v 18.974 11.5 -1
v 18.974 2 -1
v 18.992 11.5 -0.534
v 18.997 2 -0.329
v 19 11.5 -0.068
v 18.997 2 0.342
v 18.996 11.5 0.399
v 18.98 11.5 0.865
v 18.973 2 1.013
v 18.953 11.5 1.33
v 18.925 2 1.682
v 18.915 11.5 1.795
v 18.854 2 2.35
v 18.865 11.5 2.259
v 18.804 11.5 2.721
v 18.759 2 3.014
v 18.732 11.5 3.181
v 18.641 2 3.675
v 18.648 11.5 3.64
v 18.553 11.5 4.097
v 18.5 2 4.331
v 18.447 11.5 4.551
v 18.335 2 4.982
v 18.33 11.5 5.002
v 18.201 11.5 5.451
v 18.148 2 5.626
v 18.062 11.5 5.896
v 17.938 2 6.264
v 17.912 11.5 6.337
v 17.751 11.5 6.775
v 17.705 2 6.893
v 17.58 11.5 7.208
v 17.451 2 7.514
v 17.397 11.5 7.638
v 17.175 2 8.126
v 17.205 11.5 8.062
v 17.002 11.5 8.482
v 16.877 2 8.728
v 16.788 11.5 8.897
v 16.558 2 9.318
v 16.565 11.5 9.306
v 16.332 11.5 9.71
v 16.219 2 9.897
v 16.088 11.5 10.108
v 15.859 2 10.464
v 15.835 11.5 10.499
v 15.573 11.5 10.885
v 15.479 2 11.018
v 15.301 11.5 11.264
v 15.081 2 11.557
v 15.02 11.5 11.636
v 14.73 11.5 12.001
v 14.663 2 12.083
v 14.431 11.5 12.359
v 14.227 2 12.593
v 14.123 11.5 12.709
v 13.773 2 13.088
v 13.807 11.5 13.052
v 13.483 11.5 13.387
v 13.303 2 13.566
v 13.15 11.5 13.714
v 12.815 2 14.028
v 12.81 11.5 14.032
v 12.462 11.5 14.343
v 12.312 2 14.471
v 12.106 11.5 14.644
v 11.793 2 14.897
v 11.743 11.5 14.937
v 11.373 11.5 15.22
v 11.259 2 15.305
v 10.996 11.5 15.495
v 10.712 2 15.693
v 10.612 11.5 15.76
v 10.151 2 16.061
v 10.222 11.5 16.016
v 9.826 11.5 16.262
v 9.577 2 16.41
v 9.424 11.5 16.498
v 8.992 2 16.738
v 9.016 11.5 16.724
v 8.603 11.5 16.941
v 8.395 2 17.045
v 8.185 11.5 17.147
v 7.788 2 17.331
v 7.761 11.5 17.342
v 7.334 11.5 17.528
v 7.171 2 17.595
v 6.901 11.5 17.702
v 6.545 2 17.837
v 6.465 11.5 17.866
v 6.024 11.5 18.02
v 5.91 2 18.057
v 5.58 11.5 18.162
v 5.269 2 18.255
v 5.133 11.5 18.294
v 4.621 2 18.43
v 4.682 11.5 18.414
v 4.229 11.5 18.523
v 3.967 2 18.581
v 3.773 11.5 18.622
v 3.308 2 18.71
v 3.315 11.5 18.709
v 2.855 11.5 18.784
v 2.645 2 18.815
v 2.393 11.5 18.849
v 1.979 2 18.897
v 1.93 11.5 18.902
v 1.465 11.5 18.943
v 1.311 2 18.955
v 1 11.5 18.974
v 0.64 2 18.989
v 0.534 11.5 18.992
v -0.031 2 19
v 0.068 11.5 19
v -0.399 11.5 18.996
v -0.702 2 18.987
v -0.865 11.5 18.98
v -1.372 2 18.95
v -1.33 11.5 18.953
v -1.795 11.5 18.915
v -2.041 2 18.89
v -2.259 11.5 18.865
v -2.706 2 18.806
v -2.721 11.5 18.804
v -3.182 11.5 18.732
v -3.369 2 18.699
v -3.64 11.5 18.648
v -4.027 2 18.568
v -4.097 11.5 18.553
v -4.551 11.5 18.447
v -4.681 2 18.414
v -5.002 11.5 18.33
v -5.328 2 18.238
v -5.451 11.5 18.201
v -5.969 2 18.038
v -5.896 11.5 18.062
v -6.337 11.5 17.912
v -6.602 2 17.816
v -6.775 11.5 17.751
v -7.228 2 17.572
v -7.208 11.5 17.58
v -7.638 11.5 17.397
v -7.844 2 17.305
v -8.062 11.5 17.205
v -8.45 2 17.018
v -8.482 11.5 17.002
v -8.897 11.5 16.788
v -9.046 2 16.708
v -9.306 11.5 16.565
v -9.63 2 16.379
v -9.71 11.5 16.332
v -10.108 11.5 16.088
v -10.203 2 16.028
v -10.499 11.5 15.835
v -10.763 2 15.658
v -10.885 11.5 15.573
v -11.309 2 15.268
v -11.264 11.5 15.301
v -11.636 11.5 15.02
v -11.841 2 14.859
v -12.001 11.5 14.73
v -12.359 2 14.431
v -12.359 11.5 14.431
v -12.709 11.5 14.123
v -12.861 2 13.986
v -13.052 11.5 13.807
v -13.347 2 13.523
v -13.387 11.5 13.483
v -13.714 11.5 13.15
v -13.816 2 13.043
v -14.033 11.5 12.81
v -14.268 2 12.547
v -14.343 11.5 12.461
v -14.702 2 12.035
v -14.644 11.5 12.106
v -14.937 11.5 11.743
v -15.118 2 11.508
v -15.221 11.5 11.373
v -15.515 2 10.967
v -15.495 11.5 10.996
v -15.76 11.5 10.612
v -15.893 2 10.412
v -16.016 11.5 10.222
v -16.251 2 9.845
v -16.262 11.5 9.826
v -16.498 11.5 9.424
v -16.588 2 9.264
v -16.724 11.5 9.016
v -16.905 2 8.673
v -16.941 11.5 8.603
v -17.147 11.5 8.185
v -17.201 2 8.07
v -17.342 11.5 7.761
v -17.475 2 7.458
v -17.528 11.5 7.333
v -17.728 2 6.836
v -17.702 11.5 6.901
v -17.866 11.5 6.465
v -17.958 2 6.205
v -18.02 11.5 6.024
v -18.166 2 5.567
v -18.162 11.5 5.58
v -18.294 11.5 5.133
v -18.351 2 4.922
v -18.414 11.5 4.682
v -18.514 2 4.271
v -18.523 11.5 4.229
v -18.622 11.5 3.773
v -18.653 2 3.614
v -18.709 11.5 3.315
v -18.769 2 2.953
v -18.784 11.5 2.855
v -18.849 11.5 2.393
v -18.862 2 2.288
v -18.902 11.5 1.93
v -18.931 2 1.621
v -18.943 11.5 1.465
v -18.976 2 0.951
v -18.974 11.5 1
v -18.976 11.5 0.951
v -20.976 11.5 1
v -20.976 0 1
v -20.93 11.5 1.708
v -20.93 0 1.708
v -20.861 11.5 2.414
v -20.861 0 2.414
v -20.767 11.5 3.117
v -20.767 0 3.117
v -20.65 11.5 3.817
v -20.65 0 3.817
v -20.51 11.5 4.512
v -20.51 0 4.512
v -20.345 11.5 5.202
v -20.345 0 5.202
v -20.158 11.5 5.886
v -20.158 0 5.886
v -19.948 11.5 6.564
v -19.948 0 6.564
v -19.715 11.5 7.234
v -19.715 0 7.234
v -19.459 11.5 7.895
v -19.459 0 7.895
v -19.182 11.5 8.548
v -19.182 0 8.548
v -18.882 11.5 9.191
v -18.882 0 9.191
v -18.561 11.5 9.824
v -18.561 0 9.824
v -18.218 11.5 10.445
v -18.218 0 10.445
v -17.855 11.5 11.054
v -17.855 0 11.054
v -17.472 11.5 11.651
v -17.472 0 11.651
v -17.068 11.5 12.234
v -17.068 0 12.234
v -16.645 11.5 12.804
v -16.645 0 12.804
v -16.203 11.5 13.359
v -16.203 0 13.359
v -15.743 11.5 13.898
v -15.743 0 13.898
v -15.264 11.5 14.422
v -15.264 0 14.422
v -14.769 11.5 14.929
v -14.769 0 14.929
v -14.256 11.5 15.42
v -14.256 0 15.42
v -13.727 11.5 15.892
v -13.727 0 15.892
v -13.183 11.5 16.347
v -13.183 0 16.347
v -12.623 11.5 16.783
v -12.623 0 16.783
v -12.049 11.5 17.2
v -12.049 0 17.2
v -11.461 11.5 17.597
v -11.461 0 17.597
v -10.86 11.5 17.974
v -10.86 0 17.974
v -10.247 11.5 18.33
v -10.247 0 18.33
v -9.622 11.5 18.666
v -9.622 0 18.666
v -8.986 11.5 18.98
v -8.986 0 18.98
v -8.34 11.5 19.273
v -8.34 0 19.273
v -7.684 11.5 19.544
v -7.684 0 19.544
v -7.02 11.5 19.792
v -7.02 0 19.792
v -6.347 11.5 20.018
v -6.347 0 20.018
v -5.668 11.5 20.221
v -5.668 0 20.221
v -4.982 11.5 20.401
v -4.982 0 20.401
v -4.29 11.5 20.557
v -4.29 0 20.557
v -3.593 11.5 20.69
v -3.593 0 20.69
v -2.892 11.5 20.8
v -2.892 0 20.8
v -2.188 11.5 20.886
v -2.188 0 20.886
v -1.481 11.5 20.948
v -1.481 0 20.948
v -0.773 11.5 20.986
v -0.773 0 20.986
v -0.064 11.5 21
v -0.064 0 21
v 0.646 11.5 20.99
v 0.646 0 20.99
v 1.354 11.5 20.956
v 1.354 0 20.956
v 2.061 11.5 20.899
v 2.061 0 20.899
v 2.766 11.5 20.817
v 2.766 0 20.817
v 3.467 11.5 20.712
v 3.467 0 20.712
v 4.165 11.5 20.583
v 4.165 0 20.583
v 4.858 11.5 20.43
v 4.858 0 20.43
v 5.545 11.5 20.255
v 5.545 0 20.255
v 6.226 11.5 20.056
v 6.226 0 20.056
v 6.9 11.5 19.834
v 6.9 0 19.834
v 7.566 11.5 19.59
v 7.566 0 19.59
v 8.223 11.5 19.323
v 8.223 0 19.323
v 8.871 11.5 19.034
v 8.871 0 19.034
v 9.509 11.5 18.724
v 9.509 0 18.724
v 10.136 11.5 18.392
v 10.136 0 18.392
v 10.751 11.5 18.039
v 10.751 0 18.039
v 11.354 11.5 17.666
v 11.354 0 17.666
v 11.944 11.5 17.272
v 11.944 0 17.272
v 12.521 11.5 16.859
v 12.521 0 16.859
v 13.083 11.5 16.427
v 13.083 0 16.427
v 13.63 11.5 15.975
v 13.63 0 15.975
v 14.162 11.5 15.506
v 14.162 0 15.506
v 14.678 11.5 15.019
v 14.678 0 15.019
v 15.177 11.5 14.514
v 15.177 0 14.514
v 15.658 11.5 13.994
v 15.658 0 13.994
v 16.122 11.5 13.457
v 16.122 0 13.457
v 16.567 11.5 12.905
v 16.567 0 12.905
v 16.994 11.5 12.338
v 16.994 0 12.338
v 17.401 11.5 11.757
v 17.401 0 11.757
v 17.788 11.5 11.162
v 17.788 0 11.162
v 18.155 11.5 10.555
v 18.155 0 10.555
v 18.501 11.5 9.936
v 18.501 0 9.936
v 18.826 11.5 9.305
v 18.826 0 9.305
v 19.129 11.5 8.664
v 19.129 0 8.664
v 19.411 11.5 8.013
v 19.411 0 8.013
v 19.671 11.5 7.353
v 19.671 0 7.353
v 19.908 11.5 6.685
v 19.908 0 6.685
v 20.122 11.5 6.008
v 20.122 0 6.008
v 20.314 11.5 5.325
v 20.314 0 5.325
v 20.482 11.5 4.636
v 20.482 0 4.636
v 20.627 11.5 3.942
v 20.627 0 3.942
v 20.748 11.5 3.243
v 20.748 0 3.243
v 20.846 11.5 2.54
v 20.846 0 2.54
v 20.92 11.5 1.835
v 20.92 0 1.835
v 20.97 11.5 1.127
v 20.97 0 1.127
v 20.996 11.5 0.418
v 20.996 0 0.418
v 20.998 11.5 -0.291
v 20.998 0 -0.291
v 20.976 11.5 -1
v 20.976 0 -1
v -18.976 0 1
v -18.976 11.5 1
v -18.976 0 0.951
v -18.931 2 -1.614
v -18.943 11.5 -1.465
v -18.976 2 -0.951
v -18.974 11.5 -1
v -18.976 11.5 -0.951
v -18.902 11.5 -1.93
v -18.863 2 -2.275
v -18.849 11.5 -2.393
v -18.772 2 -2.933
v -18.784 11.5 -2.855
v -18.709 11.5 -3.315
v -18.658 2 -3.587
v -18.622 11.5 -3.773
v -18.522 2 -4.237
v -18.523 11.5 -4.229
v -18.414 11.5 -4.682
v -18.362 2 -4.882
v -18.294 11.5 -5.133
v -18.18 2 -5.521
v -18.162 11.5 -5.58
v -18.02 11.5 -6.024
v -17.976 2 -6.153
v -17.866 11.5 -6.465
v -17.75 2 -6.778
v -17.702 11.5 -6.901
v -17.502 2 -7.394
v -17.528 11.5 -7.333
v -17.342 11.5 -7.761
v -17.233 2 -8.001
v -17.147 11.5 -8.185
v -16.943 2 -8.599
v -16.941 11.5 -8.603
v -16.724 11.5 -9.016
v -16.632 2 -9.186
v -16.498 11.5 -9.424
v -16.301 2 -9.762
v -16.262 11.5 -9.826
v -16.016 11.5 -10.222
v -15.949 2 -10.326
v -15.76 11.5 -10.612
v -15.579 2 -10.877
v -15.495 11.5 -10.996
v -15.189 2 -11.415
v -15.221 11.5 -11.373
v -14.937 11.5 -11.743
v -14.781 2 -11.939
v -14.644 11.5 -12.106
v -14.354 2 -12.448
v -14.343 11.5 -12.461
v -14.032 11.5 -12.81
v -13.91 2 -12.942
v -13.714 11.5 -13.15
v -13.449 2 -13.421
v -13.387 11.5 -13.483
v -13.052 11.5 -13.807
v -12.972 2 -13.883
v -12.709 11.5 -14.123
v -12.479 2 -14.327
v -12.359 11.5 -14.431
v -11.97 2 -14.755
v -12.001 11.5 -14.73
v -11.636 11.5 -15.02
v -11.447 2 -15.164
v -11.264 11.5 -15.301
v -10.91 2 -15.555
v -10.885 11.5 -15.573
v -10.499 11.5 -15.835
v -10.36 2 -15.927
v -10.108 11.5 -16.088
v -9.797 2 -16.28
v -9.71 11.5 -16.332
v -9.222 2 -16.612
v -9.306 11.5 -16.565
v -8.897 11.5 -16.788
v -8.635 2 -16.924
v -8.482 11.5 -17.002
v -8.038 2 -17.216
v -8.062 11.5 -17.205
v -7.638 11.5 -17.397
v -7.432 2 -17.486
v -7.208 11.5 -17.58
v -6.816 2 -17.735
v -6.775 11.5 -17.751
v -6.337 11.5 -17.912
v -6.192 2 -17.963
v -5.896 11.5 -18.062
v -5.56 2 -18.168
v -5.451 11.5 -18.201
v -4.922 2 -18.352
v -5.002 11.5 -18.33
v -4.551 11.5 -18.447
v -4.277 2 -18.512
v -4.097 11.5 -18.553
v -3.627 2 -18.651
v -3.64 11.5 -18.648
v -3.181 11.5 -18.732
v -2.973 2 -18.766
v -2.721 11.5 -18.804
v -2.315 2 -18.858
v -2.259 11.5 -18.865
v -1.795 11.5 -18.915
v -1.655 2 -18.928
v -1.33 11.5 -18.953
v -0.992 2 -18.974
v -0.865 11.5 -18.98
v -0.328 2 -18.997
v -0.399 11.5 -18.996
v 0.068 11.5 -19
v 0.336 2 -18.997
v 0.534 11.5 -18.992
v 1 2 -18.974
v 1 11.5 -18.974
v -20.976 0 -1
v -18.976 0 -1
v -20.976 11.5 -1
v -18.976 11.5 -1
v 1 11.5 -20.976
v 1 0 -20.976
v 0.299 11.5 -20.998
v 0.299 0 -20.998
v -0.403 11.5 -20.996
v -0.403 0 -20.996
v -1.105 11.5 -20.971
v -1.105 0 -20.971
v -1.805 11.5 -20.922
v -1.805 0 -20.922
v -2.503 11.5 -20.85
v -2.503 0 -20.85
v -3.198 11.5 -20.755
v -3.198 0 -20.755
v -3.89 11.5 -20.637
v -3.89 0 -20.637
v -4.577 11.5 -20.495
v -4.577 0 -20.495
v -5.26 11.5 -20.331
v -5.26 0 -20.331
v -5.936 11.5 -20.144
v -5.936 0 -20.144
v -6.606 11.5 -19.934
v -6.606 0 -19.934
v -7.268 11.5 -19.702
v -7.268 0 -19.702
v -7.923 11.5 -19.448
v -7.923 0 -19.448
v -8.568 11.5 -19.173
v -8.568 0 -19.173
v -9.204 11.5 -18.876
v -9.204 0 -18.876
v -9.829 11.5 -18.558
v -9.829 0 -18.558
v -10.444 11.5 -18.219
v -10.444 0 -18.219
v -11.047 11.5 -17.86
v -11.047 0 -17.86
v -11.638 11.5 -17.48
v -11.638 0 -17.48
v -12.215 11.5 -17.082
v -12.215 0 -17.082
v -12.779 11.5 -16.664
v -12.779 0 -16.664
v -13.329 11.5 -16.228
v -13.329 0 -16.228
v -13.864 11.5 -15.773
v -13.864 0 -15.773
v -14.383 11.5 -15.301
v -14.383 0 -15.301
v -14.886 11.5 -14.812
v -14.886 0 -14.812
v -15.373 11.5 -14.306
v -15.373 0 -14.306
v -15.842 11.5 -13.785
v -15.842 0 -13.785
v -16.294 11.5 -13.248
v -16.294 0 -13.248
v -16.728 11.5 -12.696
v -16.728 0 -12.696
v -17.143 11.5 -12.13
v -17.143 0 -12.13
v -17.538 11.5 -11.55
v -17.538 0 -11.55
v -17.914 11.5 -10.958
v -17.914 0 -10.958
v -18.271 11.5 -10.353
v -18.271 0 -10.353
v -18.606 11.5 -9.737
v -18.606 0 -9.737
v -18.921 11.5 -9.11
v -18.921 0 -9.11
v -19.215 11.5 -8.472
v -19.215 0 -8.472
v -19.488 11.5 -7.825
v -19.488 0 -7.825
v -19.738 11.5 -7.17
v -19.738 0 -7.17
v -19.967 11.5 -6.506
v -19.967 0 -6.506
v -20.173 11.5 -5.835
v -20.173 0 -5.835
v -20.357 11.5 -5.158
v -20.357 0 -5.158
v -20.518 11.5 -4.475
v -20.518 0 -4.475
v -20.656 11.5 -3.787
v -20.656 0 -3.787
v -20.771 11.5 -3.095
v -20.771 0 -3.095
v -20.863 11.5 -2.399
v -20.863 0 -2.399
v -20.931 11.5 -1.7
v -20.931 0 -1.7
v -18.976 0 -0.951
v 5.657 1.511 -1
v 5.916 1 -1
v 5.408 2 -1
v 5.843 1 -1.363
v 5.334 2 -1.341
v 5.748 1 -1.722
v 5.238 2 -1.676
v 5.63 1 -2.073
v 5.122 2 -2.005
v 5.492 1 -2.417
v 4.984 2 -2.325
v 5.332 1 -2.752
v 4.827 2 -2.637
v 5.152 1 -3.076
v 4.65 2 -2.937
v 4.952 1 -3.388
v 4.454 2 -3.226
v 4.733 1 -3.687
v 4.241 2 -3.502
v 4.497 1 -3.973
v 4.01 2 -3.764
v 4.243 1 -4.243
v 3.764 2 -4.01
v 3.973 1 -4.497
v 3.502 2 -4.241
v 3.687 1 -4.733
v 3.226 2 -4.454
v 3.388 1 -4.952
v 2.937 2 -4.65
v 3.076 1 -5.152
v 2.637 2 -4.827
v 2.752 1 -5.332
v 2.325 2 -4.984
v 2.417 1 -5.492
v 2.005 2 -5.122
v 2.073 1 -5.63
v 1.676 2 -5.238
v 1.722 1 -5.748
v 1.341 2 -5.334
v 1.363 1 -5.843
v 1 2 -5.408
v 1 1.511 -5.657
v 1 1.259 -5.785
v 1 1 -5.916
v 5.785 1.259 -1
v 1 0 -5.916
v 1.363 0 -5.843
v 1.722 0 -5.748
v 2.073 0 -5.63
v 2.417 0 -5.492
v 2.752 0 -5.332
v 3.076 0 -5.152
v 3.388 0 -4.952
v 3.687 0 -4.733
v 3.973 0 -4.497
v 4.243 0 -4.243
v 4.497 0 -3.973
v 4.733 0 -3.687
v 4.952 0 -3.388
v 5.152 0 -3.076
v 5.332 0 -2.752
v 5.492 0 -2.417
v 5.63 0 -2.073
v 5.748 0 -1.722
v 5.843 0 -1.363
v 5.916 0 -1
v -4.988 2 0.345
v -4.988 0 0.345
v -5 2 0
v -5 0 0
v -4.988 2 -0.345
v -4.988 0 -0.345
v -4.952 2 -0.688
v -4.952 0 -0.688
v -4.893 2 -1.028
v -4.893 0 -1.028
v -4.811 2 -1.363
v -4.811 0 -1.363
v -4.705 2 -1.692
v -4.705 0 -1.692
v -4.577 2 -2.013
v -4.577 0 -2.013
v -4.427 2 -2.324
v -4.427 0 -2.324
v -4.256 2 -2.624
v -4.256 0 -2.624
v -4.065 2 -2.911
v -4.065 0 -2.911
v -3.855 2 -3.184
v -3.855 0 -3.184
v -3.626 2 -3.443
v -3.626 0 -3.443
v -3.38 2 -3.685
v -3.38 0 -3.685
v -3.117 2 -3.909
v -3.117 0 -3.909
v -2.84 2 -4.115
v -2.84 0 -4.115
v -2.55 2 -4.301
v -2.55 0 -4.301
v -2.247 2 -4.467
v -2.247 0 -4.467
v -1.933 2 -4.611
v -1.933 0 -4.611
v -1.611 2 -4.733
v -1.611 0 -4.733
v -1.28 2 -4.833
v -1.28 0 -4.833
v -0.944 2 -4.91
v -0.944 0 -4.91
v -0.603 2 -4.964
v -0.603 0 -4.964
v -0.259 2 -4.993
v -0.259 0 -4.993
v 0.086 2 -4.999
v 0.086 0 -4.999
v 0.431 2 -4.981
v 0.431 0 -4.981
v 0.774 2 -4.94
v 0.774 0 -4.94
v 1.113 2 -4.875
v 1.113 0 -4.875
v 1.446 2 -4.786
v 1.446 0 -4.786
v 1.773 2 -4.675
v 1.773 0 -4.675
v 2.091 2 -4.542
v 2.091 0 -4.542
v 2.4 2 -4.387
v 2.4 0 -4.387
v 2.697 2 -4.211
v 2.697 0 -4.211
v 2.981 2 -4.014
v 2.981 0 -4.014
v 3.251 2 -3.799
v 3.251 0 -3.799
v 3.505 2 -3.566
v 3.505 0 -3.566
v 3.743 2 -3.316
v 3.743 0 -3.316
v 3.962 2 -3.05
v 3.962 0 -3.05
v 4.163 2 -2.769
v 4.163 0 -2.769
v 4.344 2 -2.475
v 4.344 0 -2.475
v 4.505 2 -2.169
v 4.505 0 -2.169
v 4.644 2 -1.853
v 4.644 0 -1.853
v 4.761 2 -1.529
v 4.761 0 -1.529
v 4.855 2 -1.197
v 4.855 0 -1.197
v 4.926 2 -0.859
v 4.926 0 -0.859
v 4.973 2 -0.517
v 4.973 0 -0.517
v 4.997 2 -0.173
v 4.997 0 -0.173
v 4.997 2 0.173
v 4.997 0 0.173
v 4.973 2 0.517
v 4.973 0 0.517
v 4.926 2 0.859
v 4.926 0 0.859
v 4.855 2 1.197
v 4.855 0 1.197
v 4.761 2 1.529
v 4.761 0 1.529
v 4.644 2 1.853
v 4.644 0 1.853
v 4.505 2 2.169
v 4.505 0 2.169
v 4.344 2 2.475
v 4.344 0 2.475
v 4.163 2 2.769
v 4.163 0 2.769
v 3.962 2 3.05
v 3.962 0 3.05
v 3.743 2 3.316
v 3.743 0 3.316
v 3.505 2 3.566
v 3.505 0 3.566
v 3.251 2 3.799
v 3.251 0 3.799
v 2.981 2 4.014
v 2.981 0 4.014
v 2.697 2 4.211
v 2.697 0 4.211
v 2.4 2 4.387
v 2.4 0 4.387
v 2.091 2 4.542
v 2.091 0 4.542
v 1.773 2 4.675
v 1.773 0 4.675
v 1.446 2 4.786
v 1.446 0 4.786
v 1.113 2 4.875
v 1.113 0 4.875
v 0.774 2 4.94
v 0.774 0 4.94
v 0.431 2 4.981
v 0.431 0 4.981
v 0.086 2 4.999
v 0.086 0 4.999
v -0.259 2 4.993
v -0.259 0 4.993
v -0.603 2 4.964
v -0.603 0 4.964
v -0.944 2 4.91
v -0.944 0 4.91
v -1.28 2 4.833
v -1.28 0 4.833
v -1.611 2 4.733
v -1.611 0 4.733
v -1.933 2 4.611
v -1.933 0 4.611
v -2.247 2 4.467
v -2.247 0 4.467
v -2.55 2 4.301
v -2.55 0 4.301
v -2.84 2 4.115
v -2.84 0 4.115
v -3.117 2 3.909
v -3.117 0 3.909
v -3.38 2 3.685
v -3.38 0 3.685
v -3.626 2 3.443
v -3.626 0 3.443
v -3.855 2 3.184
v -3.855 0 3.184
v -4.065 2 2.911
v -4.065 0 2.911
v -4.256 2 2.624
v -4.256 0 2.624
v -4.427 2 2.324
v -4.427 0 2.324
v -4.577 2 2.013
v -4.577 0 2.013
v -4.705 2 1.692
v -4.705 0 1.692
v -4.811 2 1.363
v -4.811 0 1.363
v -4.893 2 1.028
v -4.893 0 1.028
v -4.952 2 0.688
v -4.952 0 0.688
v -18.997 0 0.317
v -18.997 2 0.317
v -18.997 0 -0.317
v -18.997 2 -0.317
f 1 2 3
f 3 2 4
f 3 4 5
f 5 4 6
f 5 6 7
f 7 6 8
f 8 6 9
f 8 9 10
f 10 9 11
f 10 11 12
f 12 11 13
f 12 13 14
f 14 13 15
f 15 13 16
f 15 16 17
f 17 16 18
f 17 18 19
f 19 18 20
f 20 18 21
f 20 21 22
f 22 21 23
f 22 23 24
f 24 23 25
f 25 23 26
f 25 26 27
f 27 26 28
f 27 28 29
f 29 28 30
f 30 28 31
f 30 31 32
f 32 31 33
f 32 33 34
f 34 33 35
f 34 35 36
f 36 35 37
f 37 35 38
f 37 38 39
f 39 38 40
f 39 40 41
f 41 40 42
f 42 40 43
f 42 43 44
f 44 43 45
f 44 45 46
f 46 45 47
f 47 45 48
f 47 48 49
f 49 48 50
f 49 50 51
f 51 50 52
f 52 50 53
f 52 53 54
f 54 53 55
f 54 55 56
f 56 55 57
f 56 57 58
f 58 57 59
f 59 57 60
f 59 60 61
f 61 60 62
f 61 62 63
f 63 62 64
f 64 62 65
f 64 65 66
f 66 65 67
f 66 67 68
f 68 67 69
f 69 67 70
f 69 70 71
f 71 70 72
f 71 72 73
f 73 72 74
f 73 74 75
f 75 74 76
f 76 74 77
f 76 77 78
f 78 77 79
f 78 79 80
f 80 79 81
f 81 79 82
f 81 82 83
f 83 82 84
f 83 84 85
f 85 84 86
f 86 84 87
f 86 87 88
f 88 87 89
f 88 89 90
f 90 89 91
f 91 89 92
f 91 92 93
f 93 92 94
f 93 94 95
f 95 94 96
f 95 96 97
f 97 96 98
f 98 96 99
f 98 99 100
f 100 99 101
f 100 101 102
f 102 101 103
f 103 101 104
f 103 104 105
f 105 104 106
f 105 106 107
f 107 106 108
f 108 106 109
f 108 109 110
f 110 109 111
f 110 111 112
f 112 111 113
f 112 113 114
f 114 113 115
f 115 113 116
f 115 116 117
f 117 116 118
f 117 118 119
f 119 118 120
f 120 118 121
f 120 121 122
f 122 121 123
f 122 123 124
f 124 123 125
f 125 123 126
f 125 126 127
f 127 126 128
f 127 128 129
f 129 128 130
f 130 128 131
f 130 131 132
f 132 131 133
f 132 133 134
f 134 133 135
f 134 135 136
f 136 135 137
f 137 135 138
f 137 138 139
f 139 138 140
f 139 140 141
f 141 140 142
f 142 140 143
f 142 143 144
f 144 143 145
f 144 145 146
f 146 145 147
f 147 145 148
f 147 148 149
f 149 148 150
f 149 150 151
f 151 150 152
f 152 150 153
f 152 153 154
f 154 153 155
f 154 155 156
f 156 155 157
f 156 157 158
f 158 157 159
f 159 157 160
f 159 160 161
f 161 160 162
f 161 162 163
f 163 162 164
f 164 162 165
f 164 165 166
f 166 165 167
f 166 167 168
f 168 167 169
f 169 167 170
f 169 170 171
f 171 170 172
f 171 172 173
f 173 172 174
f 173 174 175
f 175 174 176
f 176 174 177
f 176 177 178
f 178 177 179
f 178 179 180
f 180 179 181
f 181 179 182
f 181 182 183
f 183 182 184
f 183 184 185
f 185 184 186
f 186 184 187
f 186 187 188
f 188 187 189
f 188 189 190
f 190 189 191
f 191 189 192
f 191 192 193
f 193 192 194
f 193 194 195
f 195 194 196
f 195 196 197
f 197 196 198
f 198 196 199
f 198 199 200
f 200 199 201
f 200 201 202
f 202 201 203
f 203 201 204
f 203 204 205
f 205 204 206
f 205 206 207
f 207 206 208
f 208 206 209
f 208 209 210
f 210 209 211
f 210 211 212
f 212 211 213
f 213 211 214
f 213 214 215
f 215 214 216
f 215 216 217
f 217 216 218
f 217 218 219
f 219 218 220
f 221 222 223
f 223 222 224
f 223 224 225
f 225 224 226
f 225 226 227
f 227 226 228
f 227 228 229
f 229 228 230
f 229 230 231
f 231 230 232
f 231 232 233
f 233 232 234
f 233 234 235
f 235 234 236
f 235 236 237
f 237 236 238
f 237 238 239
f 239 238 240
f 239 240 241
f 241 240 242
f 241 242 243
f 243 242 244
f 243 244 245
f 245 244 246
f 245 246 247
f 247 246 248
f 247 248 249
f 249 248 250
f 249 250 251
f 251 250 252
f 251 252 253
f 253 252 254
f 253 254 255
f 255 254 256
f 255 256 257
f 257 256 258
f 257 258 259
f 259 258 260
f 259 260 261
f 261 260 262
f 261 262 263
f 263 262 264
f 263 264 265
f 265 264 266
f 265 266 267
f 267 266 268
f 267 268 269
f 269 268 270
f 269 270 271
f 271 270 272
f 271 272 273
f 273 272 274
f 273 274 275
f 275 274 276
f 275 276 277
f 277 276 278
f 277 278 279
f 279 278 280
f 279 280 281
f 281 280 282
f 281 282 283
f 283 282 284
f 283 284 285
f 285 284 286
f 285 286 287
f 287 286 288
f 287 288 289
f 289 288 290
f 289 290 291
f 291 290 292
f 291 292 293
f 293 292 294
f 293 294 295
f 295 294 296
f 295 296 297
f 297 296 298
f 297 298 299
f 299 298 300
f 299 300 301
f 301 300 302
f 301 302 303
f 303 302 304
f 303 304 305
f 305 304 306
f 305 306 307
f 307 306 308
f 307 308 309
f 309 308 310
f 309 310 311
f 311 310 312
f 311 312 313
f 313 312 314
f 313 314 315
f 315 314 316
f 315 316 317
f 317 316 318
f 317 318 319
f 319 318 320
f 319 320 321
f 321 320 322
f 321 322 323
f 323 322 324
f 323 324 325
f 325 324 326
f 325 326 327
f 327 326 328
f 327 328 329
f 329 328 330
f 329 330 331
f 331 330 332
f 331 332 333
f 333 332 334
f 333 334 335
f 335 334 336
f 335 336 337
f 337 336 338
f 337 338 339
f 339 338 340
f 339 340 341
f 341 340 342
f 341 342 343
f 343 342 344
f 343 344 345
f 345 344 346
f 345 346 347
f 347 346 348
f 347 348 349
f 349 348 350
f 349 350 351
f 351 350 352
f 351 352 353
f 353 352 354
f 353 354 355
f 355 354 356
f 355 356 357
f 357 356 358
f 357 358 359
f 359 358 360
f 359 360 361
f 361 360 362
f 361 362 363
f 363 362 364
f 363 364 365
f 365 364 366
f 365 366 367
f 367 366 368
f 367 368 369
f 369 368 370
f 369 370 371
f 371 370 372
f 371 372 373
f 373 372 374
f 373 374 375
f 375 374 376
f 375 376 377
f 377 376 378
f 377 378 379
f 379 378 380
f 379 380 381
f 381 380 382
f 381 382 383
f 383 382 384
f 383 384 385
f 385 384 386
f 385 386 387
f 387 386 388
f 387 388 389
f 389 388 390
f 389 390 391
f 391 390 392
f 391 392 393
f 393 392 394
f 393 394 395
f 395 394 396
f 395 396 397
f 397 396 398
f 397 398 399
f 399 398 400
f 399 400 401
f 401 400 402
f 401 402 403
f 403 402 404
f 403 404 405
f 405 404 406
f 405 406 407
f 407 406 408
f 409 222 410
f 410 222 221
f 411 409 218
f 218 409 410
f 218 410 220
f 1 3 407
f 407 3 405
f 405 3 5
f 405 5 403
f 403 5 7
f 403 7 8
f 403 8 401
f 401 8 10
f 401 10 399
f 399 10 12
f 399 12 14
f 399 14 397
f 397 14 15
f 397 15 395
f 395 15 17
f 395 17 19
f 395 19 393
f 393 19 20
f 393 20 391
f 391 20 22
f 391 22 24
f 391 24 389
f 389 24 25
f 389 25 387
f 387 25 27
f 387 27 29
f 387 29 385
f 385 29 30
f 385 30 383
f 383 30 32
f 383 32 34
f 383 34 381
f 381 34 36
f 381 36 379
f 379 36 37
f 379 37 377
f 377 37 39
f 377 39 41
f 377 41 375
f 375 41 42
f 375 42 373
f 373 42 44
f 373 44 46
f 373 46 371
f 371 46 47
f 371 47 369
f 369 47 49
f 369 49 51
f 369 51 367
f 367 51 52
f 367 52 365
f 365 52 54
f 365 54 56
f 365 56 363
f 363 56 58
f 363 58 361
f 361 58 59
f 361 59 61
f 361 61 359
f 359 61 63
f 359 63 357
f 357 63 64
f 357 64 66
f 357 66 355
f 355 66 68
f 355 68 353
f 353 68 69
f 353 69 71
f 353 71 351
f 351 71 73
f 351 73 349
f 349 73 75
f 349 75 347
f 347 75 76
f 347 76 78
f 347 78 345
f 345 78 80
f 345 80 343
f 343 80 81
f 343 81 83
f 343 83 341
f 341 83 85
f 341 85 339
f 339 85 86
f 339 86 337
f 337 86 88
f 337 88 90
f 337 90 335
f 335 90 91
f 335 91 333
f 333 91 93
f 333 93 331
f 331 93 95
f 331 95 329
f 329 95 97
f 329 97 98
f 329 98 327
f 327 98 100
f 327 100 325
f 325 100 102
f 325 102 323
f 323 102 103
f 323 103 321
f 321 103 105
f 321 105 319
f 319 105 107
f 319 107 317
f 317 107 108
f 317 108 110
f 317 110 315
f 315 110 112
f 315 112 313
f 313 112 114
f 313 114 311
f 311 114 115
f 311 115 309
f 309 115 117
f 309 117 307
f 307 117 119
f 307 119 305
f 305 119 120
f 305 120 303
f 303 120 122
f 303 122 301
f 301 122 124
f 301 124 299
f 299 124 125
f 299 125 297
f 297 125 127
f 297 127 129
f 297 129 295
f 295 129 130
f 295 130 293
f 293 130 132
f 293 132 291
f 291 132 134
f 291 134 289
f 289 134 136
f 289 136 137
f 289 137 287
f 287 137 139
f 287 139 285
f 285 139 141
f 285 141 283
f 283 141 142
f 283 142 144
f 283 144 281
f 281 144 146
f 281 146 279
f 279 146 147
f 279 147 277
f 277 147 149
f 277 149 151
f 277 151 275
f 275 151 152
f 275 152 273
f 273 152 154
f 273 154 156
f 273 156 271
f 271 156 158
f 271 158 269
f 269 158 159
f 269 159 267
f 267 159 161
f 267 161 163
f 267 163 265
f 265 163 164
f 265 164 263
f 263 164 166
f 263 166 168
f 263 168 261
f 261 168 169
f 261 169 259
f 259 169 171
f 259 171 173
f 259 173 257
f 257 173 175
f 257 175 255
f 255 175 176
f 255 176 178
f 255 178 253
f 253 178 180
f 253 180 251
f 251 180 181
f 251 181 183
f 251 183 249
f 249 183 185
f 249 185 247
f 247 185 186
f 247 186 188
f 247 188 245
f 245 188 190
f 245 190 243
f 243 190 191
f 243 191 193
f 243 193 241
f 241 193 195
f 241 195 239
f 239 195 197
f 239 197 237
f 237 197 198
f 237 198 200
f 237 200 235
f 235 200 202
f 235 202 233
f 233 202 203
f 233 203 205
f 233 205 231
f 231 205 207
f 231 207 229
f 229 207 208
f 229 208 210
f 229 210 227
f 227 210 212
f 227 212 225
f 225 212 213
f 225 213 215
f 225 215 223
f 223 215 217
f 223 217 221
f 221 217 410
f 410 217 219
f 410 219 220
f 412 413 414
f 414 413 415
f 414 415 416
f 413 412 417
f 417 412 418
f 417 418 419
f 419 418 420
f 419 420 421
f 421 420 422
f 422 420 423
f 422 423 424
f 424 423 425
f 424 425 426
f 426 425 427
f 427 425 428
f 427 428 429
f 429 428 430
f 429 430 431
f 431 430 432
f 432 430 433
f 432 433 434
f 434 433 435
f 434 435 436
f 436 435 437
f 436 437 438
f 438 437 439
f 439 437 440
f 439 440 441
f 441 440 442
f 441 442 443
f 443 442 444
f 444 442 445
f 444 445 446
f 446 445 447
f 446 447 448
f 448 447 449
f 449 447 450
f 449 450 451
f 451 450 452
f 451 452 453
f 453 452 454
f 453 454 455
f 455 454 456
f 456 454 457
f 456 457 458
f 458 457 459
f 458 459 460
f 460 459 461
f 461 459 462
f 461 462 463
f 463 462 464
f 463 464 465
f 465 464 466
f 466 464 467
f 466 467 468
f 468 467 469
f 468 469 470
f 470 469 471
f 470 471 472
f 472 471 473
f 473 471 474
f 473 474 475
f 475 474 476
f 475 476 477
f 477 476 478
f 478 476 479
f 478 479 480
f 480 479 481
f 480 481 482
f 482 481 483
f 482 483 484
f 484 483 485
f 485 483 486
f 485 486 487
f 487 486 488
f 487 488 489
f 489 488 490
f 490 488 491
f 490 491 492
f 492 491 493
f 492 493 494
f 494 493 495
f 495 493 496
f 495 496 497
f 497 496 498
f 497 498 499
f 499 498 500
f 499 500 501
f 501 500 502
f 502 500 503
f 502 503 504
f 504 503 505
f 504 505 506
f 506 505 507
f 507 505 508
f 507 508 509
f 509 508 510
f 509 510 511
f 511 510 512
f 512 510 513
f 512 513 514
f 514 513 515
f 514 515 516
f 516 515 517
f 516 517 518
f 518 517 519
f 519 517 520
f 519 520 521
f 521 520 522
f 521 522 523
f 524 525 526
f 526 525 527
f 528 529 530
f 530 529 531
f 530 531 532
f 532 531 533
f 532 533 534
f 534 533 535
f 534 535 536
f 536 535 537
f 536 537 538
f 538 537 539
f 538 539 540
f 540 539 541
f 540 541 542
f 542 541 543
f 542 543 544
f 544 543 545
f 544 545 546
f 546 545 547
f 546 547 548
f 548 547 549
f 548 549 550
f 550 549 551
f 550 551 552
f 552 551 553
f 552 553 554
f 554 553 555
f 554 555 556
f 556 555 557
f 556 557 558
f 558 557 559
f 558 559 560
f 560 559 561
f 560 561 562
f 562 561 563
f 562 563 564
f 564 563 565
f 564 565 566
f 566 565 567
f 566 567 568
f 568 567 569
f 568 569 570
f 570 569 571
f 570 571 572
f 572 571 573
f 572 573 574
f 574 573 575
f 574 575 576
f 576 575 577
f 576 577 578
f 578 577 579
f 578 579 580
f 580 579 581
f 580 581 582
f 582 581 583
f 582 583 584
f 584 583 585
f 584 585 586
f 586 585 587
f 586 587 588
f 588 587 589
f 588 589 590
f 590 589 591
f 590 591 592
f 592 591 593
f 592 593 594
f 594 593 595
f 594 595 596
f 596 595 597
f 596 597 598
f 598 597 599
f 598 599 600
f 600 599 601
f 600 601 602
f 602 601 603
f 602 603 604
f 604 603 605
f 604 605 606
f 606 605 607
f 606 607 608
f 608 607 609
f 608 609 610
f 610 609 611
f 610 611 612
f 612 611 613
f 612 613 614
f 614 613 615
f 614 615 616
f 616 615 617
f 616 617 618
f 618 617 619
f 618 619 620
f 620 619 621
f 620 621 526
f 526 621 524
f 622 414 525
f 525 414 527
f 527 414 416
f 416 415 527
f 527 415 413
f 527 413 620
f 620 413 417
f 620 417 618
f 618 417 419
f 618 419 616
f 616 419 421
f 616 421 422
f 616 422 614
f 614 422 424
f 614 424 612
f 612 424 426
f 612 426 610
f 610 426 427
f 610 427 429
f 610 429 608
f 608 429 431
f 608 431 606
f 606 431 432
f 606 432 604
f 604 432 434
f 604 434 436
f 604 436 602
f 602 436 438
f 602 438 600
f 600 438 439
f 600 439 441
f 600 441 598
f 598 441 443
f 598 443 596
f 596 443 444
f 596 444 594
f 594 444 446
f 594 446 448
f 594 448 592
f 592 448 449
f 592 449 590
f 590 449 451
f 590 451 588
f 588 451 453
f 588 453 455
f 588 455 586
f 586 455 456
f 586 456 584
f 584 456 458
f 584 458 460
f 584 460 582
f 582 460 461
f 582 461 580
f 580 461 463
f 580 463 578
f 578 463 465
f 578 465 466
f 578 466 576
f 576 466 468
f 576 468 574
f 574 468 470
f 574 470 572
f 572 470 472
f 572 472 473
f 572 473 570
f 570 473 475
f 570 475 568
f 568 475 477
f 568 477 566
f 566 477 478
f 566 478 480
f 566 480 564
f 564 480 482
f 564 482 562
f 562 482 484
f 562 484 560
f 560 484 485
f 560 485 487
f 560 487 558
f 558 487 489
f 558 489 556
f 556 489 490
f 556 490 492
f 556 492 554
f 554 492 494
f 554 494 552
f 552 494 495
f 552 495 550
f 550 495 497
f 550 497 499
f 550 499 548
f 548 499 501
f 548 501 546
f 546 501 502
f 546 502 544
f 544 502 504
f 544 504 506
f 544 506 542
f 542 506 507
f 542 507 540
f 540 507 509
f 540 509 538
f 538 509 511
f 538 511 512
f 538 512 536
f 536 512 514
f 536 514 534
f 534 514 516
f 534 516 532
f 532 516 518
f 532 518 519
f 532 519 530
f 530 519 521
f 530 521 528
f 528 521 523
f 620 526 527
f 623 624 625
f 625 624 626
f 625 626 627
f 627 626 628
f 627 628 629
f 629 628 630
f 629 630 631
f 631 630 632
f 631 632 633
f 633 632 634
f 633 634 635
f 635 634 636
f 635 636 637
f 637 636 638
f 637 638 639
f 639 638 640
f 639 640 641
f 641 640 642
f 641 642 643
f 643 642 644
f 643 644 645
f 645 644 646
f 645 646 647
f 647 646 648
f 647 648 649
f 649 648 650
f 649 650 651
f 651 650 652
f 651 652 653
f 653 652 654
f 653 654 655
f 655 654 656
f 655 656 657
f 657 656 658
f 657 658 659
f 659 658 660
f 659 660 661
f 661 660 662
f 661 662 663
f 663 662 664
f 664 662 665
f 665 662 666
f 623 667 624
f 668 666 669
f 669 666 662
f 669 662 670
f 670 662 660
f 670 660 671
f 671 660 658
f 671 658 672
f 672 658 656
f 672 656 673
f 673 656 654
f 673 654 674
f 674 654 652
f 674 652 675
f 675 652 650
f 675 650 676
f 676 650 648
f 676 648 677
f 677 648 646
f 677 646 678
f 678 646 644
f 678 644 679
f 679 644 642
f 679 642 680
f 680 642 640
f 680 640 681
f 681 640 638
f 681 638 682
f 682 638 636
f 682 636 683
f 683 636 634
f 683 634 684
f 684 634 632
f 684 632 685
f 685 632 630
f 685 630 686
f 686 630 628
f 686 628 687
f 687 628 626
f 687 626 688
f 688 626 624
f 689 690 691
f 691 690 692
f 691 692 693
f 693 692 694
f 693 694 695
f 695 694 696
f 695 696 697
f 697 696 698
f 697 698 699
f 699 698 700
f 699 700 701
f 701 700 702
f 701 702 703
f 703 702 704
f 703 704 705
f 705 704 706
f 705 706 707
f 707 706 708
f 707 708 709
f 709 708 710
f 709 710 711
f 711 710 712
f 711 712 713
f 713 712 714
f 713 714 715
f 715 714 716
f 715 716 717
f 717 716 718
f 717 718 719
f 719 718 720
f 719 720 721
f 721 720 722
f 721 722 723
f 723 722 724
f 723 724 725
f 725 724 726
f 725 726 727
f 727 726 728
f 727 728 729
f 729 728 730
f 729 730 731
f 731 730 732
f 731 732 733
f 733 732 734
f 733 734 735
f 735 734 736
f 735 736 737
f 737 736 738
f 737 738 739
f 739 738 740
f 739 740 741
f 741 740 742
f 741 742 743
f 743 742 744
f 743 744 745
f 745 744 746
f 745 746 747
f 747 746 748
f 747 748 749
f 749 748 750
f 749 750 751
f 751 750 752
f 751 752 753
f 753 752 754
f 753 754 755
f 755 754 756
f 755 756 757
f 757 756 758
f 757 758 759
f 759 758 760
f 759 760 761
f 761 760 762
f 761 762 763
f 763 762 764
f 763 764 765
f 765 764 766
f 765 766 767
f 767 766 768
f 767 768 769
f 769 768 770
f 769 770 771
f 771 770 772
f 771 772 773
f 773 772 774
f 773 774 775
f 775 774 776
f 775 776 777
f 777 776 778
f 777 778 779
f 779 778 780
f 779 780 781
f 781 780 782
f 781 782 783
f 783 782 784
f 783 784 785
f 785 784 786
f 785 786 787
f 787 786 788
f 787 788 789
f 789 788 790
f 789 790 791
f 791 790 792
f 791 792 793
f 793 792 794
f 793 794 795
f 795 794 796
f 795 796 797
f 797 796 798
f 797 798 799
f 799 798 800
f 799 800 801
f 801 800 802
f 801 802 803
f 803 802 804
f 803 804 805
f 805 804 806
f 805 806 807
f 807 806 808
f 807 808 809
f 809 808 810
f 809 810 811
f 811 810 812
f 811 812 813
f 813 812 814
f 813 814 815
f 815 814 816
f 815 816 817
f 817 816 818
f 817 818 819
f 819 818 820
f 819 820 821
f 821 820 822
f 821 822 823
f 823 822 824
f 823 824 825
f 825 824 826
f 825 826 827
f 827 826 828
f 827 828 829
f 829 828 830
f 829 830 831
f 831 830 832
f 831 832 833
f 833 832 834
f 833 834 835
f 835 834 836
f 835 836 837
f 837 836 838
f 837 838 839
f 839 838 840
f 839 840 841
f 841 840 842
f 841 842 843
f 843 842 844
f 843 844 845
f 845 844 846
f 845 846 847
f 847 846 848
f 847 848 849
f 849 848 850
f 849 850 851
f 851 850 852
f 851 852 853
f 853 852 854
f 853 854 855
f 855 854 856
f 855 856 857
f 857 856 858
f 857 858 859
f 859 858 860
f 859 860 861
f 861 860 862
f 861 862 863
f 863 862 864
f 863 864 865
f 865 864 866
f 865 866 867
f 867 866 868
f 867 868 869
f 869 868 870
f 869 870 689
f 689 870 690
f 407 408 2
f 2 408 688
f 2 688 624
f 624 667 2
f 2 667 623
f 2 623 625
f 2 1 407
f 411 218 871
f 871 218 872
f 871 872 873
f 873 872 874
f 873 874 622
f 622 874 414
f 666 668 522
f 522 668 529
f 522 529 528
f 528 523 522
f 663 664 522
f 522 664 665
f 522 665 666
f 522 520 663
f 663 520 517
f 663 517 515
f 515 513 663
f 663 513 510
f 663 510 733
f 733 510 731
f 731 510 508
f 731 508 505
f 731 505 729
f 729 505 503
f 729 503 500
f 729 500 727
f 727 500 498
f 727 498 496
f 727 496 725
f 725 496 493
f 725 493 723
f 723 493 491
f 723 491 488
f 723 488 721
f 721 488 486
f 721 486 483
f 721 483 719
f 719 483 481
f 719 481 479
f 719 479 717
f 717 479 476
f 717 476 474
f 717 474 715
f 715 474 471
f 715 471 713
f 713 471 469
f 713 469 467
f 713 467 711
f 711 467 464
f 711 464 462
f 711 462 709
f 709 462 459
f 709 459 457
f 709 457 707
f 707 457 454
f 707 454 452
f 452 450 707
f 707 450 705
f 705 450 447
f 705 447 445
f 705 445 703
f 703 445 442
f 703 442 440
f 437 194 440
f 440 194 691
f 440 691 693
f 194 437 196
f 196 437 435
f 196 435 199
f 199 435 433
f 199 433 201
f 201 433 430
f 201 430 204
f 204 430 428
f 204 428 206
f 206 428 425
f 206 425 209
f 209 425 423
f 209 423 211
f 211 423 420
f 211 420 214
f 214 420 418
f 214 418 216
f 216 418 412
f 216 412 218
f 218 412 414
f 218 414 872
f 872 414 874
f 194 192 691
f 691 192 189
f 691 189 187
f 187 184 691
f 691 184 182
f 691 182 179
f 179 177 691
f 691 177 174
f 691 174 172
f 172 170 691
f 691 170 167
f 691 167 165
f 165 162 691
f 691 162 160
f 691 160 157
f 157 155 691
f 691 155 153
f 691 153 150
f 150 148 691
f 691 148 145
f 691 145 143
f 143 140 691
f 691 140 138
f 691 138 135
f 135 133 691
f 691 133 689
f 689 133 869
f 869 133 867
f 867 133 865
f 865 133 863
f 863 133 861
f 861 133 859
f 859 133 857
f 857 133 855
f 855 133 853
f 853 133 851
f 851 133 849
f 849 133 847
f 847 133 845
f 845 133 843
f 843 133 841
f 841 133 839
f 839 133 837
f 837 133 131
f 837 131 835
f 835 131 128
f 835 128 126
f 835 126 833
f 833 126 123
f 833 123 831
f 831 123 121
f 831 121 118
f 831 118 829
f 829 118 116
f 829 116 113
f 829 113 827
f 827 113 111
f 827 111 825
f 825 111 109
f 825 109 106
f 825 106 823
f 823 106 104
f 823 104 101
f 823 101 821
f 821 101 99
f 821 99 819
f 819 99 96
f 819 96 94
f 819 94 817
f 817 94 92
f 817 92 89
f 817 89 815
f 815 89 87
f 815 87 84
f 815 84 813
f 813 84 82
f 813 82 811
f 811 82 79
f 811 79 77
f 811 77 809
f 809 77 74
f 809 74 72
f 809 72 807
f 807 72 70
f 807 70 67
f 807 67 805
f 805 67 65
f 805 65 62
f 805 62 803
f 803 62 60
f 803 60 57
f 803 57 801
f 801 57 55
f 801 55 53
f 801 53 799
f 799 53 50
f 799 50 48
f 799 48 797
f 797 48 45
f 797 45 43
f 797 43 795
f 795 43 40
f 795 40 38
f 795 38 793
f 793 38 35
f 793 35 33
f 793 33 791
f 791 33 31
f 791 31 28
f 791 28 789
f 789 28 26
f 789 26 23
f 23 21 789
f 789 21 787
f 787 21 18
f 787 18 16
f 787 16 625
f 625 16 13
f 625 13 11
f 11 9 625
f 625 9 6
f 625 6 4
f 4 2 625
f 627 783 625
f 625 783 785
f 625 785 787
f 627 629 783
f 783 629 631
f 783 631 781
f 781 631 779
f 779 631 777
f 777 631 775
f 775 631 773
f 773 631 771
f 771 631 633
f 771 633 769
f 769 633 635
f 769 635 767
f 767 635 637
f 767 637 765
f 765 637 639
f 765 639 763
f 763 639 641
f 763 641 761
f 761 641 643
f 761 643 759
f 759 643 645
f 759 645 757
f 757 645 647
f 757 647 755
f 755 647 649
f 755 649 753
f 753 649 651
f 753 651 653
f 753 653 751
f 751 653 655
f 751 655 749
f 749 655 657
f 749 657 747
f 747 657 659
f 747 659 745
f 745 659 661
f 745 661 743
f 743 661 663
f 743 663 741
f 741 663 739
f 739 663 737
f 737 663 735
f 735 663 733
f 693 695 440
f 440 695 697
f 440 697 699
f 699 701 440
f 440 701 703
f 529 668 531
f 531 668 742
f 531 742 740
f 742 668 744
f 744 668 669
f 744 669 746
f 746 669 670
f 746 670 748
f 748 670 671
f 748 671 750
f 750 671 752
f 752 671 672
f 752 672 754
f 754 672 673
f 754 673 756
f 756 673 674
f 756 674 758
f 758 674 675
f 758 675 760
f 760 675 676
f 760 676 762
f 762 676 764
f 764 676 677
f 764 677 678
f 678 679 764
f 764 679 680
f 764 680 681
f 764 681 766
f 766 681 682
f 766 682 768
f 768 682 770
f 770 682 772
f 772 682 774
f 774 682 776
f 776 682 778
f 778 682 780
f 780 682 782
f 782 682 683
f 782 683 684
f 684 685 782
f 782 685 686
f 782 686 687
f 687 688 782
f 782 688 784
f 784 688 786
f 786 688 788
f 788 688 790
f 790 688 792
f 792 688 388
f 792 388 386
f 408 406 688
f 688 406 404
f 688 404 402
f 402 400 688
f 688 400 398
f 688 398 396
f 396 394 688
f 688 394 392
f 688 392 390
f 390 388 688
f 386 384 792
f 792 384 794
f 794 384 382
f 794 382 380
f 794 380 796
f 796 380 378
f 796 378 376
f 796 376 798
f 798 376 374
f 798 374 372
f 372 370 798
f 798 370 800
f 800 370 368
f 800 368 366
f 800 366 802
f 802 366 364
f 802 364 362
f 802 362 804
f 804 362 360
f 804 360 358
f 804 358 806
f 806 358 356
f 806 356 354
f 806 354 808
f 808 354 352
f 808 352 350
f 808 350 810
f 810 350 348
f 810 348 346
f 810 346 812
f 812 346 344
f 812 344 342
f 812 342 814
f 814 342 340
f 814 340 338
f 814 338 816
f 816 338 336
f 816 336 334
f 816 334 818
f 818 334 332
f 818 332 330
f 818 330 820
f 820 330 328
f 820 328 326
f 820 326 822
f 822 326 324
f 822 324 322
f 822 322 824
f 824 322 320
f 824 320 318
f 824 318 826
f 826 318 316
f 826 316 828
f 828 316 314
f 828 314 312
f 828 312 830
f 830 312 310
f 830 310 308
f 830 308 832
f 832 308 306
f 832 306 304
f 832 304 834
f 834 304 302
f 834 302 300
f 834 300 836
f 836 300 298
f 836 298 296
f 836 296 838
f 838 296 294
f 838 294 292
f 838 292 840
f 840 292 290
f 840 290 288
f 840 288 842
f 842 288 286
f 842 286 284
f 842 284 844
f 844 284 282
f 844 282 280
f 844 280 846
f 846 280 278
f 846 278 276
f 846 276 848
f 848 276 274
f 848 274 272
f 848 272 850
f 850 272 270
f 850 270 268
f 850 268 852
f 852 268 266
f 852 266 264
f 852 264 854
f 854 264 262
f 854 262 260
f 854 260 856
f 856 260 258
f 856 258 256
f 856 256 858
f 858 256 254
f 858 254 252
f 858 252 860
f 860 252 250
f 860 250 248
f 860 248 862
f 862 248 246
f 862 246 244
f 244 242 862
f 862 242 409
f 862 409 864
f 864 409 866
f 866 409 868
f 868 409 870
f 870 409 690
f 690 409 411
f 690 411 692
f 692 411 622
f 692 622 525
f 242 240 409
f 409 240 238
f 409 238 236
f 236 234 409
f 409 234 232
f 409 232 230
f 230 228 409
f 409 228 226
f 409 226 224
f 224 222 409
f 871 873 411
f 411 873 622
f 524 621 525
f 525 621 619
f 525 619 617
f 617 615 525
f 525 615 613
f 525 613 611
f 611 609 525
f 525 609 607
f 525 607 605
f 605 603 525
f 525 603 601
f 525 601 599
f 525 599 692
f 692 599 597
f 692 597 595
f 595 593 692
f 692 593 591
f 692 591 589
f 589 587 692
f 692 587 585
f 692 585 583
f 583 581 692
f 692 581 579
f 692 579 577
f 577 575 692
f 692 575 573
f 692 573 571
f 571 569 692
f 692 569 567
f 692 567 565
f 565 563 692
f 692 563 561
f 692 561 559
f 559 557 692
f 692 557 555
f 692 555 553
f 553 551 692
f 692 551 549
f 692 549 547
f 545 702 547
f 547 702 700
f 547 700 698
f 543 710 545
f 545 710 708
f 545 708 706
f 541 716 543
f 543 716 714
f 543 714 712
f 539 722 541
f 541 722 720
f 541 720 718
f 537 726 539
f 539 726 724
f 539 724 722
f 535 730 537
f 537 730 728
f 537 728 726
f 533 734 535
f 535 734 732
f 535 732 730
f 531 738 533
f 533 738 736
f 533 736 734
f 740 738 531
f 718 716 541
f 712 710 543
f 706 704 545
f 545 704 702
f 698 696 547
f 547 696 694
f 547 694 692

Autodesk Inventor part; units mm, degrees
ref_plane "YZ Plane" through (0, 0, 0) normal (1, 0, 0) x (0, 1, 0)
ref_plane "XZ Plane" through (0, 0, 0) normal (0, 1, 0) x (-1, 0, 0)
ref_plane "XY Plane" through (0, 0, 0) normal (0, 0, 1) x (1, 0, 0)
sketch "Sketch9" plane through (0, 0, 0) normal (0, 1, 0) x (-1, 0, 0)
  line L0 (21, 0) -> (-21, 0) construction
  line L1 (0, 21) -> (0, -21) construction
  line L2 (21, -1) -> (20.9762, -1)
  line L3 (21, 1) -> (20.9762, 1)
  line L4 (-20.9762, 1) -> (-21, 1)
  line L5 (1, 21) -> (1, 20.9762)
  line L6 (1, -20.9762) -> (1, -21)
  line L7 (-1, 21) -> (-1, 20.9762)
  line L8 (-1, -5.9161) -> (-1, -21)
  line L9 (-5.9161, -1) -> (-18.9762, -1)
  circle A0 centre (0, 0) radius 5
  arc A1 (-5.9161, -1) -> (-1, -5.9161) centre (0, 0) ccw
  line L10 (-20.9762, -1) -> (-18.9762, -1)
  line L11 (1, -21) -> (1, -3.873) construction
  line L12 (-3.873, 1) -> (-18.9762, 1) construction
  line L13 (-18.9762, 1) -> (-20.9762, 1) construction
  line L14 (-3.873, 1) -> (20.9762, 1) construction
  line L15 (-5.9161, -1) -> (20.9762, -1) construction
  line L16 (1, -3.873) -> (1, 20.9762) construction
  line L17 (-1, -5.9161) -> (-1, 20.9762) construction
  line L18 (0, 21) -> (0, 19) construction
  line L19 (0, 19) -> (1, 19) construction
  arc A2 (-1, -20.9762) -> (0, 21) centre (0, 0) ccw construction
  arc A3 (20.9762, 1) -> (-20.9762, -1) centre (0, 0) ccw construction
  arc A4 (-1, -18.9737) -> (-18.9737, -1) centre (0, 0) ccw
  line L20 (-1, 19) -> (1, 19)
  point P0 (-4.899, -1)
  point P1 (-1, -4.899)
  dimension "d35" = 10
  dimension "d50" = 2
  dimension "d53" = 38
extrude "Extrusion5" add sketch "Sketch9" along normal blind 2
chamfer "Chamfer1" distance 0.5 distance2 1 1 edges at (4.2426, 2, -4.2426) measured on face at (13.5988, 2, 4.219)
sketch "Sketch12" plane through (0, 0, 0) normal (0, 1, 0) x (-1, 0, 0)
  circle A0 centre (0, 0) radius 5 projected
  arc A1 (-1, -18.9737) -> (-18.9737, -1) centre (0, 0) ccw
  line L0 (-18.9737, -1) -> (-5.4083, -1) projected
  line L1 (-18.9737, -1) -> (-20.9762, -1)
  line L2 (-1, -5.4083) -> (-1, -18.9737) projected
  line L3 (-1, -18.9737) -> (-1, -20.9762)
  line L4 (-20.9762, -1) -> (20.9762, -1) construction
  line L5 (-20.9762, 1) -> (20.9762, 1) construction
  line L6 (20.9762, 1) -> (18.9762, 1)
  line L7 (20.9762, -1) -> (18.9762, -1)
  line L8 (18.9762, -1) -> (18.9762, 1)
  arc A2 (-1, -20.9762) -> (20.9762, -1) centre (0, 0) ccw
  arc A3 (20.9762, 1) -> (-20.9762, -1) centre (0, 0) ccw
  point P0 (18.9762, 0.9512)
  point P1 (18.9762, -0.9512)
  dimension "d60" = 19
  dimension "d63" = 2
  dimension "d64" = 2
  dimension "d65" = 2
extrude "Extrusion8" add sketch "Sketch12" along normal blind 11.5 contours A1 L1 A3 L6 L8 | A1 L8 L7 A2 L3
properties part number "base layer 3"
